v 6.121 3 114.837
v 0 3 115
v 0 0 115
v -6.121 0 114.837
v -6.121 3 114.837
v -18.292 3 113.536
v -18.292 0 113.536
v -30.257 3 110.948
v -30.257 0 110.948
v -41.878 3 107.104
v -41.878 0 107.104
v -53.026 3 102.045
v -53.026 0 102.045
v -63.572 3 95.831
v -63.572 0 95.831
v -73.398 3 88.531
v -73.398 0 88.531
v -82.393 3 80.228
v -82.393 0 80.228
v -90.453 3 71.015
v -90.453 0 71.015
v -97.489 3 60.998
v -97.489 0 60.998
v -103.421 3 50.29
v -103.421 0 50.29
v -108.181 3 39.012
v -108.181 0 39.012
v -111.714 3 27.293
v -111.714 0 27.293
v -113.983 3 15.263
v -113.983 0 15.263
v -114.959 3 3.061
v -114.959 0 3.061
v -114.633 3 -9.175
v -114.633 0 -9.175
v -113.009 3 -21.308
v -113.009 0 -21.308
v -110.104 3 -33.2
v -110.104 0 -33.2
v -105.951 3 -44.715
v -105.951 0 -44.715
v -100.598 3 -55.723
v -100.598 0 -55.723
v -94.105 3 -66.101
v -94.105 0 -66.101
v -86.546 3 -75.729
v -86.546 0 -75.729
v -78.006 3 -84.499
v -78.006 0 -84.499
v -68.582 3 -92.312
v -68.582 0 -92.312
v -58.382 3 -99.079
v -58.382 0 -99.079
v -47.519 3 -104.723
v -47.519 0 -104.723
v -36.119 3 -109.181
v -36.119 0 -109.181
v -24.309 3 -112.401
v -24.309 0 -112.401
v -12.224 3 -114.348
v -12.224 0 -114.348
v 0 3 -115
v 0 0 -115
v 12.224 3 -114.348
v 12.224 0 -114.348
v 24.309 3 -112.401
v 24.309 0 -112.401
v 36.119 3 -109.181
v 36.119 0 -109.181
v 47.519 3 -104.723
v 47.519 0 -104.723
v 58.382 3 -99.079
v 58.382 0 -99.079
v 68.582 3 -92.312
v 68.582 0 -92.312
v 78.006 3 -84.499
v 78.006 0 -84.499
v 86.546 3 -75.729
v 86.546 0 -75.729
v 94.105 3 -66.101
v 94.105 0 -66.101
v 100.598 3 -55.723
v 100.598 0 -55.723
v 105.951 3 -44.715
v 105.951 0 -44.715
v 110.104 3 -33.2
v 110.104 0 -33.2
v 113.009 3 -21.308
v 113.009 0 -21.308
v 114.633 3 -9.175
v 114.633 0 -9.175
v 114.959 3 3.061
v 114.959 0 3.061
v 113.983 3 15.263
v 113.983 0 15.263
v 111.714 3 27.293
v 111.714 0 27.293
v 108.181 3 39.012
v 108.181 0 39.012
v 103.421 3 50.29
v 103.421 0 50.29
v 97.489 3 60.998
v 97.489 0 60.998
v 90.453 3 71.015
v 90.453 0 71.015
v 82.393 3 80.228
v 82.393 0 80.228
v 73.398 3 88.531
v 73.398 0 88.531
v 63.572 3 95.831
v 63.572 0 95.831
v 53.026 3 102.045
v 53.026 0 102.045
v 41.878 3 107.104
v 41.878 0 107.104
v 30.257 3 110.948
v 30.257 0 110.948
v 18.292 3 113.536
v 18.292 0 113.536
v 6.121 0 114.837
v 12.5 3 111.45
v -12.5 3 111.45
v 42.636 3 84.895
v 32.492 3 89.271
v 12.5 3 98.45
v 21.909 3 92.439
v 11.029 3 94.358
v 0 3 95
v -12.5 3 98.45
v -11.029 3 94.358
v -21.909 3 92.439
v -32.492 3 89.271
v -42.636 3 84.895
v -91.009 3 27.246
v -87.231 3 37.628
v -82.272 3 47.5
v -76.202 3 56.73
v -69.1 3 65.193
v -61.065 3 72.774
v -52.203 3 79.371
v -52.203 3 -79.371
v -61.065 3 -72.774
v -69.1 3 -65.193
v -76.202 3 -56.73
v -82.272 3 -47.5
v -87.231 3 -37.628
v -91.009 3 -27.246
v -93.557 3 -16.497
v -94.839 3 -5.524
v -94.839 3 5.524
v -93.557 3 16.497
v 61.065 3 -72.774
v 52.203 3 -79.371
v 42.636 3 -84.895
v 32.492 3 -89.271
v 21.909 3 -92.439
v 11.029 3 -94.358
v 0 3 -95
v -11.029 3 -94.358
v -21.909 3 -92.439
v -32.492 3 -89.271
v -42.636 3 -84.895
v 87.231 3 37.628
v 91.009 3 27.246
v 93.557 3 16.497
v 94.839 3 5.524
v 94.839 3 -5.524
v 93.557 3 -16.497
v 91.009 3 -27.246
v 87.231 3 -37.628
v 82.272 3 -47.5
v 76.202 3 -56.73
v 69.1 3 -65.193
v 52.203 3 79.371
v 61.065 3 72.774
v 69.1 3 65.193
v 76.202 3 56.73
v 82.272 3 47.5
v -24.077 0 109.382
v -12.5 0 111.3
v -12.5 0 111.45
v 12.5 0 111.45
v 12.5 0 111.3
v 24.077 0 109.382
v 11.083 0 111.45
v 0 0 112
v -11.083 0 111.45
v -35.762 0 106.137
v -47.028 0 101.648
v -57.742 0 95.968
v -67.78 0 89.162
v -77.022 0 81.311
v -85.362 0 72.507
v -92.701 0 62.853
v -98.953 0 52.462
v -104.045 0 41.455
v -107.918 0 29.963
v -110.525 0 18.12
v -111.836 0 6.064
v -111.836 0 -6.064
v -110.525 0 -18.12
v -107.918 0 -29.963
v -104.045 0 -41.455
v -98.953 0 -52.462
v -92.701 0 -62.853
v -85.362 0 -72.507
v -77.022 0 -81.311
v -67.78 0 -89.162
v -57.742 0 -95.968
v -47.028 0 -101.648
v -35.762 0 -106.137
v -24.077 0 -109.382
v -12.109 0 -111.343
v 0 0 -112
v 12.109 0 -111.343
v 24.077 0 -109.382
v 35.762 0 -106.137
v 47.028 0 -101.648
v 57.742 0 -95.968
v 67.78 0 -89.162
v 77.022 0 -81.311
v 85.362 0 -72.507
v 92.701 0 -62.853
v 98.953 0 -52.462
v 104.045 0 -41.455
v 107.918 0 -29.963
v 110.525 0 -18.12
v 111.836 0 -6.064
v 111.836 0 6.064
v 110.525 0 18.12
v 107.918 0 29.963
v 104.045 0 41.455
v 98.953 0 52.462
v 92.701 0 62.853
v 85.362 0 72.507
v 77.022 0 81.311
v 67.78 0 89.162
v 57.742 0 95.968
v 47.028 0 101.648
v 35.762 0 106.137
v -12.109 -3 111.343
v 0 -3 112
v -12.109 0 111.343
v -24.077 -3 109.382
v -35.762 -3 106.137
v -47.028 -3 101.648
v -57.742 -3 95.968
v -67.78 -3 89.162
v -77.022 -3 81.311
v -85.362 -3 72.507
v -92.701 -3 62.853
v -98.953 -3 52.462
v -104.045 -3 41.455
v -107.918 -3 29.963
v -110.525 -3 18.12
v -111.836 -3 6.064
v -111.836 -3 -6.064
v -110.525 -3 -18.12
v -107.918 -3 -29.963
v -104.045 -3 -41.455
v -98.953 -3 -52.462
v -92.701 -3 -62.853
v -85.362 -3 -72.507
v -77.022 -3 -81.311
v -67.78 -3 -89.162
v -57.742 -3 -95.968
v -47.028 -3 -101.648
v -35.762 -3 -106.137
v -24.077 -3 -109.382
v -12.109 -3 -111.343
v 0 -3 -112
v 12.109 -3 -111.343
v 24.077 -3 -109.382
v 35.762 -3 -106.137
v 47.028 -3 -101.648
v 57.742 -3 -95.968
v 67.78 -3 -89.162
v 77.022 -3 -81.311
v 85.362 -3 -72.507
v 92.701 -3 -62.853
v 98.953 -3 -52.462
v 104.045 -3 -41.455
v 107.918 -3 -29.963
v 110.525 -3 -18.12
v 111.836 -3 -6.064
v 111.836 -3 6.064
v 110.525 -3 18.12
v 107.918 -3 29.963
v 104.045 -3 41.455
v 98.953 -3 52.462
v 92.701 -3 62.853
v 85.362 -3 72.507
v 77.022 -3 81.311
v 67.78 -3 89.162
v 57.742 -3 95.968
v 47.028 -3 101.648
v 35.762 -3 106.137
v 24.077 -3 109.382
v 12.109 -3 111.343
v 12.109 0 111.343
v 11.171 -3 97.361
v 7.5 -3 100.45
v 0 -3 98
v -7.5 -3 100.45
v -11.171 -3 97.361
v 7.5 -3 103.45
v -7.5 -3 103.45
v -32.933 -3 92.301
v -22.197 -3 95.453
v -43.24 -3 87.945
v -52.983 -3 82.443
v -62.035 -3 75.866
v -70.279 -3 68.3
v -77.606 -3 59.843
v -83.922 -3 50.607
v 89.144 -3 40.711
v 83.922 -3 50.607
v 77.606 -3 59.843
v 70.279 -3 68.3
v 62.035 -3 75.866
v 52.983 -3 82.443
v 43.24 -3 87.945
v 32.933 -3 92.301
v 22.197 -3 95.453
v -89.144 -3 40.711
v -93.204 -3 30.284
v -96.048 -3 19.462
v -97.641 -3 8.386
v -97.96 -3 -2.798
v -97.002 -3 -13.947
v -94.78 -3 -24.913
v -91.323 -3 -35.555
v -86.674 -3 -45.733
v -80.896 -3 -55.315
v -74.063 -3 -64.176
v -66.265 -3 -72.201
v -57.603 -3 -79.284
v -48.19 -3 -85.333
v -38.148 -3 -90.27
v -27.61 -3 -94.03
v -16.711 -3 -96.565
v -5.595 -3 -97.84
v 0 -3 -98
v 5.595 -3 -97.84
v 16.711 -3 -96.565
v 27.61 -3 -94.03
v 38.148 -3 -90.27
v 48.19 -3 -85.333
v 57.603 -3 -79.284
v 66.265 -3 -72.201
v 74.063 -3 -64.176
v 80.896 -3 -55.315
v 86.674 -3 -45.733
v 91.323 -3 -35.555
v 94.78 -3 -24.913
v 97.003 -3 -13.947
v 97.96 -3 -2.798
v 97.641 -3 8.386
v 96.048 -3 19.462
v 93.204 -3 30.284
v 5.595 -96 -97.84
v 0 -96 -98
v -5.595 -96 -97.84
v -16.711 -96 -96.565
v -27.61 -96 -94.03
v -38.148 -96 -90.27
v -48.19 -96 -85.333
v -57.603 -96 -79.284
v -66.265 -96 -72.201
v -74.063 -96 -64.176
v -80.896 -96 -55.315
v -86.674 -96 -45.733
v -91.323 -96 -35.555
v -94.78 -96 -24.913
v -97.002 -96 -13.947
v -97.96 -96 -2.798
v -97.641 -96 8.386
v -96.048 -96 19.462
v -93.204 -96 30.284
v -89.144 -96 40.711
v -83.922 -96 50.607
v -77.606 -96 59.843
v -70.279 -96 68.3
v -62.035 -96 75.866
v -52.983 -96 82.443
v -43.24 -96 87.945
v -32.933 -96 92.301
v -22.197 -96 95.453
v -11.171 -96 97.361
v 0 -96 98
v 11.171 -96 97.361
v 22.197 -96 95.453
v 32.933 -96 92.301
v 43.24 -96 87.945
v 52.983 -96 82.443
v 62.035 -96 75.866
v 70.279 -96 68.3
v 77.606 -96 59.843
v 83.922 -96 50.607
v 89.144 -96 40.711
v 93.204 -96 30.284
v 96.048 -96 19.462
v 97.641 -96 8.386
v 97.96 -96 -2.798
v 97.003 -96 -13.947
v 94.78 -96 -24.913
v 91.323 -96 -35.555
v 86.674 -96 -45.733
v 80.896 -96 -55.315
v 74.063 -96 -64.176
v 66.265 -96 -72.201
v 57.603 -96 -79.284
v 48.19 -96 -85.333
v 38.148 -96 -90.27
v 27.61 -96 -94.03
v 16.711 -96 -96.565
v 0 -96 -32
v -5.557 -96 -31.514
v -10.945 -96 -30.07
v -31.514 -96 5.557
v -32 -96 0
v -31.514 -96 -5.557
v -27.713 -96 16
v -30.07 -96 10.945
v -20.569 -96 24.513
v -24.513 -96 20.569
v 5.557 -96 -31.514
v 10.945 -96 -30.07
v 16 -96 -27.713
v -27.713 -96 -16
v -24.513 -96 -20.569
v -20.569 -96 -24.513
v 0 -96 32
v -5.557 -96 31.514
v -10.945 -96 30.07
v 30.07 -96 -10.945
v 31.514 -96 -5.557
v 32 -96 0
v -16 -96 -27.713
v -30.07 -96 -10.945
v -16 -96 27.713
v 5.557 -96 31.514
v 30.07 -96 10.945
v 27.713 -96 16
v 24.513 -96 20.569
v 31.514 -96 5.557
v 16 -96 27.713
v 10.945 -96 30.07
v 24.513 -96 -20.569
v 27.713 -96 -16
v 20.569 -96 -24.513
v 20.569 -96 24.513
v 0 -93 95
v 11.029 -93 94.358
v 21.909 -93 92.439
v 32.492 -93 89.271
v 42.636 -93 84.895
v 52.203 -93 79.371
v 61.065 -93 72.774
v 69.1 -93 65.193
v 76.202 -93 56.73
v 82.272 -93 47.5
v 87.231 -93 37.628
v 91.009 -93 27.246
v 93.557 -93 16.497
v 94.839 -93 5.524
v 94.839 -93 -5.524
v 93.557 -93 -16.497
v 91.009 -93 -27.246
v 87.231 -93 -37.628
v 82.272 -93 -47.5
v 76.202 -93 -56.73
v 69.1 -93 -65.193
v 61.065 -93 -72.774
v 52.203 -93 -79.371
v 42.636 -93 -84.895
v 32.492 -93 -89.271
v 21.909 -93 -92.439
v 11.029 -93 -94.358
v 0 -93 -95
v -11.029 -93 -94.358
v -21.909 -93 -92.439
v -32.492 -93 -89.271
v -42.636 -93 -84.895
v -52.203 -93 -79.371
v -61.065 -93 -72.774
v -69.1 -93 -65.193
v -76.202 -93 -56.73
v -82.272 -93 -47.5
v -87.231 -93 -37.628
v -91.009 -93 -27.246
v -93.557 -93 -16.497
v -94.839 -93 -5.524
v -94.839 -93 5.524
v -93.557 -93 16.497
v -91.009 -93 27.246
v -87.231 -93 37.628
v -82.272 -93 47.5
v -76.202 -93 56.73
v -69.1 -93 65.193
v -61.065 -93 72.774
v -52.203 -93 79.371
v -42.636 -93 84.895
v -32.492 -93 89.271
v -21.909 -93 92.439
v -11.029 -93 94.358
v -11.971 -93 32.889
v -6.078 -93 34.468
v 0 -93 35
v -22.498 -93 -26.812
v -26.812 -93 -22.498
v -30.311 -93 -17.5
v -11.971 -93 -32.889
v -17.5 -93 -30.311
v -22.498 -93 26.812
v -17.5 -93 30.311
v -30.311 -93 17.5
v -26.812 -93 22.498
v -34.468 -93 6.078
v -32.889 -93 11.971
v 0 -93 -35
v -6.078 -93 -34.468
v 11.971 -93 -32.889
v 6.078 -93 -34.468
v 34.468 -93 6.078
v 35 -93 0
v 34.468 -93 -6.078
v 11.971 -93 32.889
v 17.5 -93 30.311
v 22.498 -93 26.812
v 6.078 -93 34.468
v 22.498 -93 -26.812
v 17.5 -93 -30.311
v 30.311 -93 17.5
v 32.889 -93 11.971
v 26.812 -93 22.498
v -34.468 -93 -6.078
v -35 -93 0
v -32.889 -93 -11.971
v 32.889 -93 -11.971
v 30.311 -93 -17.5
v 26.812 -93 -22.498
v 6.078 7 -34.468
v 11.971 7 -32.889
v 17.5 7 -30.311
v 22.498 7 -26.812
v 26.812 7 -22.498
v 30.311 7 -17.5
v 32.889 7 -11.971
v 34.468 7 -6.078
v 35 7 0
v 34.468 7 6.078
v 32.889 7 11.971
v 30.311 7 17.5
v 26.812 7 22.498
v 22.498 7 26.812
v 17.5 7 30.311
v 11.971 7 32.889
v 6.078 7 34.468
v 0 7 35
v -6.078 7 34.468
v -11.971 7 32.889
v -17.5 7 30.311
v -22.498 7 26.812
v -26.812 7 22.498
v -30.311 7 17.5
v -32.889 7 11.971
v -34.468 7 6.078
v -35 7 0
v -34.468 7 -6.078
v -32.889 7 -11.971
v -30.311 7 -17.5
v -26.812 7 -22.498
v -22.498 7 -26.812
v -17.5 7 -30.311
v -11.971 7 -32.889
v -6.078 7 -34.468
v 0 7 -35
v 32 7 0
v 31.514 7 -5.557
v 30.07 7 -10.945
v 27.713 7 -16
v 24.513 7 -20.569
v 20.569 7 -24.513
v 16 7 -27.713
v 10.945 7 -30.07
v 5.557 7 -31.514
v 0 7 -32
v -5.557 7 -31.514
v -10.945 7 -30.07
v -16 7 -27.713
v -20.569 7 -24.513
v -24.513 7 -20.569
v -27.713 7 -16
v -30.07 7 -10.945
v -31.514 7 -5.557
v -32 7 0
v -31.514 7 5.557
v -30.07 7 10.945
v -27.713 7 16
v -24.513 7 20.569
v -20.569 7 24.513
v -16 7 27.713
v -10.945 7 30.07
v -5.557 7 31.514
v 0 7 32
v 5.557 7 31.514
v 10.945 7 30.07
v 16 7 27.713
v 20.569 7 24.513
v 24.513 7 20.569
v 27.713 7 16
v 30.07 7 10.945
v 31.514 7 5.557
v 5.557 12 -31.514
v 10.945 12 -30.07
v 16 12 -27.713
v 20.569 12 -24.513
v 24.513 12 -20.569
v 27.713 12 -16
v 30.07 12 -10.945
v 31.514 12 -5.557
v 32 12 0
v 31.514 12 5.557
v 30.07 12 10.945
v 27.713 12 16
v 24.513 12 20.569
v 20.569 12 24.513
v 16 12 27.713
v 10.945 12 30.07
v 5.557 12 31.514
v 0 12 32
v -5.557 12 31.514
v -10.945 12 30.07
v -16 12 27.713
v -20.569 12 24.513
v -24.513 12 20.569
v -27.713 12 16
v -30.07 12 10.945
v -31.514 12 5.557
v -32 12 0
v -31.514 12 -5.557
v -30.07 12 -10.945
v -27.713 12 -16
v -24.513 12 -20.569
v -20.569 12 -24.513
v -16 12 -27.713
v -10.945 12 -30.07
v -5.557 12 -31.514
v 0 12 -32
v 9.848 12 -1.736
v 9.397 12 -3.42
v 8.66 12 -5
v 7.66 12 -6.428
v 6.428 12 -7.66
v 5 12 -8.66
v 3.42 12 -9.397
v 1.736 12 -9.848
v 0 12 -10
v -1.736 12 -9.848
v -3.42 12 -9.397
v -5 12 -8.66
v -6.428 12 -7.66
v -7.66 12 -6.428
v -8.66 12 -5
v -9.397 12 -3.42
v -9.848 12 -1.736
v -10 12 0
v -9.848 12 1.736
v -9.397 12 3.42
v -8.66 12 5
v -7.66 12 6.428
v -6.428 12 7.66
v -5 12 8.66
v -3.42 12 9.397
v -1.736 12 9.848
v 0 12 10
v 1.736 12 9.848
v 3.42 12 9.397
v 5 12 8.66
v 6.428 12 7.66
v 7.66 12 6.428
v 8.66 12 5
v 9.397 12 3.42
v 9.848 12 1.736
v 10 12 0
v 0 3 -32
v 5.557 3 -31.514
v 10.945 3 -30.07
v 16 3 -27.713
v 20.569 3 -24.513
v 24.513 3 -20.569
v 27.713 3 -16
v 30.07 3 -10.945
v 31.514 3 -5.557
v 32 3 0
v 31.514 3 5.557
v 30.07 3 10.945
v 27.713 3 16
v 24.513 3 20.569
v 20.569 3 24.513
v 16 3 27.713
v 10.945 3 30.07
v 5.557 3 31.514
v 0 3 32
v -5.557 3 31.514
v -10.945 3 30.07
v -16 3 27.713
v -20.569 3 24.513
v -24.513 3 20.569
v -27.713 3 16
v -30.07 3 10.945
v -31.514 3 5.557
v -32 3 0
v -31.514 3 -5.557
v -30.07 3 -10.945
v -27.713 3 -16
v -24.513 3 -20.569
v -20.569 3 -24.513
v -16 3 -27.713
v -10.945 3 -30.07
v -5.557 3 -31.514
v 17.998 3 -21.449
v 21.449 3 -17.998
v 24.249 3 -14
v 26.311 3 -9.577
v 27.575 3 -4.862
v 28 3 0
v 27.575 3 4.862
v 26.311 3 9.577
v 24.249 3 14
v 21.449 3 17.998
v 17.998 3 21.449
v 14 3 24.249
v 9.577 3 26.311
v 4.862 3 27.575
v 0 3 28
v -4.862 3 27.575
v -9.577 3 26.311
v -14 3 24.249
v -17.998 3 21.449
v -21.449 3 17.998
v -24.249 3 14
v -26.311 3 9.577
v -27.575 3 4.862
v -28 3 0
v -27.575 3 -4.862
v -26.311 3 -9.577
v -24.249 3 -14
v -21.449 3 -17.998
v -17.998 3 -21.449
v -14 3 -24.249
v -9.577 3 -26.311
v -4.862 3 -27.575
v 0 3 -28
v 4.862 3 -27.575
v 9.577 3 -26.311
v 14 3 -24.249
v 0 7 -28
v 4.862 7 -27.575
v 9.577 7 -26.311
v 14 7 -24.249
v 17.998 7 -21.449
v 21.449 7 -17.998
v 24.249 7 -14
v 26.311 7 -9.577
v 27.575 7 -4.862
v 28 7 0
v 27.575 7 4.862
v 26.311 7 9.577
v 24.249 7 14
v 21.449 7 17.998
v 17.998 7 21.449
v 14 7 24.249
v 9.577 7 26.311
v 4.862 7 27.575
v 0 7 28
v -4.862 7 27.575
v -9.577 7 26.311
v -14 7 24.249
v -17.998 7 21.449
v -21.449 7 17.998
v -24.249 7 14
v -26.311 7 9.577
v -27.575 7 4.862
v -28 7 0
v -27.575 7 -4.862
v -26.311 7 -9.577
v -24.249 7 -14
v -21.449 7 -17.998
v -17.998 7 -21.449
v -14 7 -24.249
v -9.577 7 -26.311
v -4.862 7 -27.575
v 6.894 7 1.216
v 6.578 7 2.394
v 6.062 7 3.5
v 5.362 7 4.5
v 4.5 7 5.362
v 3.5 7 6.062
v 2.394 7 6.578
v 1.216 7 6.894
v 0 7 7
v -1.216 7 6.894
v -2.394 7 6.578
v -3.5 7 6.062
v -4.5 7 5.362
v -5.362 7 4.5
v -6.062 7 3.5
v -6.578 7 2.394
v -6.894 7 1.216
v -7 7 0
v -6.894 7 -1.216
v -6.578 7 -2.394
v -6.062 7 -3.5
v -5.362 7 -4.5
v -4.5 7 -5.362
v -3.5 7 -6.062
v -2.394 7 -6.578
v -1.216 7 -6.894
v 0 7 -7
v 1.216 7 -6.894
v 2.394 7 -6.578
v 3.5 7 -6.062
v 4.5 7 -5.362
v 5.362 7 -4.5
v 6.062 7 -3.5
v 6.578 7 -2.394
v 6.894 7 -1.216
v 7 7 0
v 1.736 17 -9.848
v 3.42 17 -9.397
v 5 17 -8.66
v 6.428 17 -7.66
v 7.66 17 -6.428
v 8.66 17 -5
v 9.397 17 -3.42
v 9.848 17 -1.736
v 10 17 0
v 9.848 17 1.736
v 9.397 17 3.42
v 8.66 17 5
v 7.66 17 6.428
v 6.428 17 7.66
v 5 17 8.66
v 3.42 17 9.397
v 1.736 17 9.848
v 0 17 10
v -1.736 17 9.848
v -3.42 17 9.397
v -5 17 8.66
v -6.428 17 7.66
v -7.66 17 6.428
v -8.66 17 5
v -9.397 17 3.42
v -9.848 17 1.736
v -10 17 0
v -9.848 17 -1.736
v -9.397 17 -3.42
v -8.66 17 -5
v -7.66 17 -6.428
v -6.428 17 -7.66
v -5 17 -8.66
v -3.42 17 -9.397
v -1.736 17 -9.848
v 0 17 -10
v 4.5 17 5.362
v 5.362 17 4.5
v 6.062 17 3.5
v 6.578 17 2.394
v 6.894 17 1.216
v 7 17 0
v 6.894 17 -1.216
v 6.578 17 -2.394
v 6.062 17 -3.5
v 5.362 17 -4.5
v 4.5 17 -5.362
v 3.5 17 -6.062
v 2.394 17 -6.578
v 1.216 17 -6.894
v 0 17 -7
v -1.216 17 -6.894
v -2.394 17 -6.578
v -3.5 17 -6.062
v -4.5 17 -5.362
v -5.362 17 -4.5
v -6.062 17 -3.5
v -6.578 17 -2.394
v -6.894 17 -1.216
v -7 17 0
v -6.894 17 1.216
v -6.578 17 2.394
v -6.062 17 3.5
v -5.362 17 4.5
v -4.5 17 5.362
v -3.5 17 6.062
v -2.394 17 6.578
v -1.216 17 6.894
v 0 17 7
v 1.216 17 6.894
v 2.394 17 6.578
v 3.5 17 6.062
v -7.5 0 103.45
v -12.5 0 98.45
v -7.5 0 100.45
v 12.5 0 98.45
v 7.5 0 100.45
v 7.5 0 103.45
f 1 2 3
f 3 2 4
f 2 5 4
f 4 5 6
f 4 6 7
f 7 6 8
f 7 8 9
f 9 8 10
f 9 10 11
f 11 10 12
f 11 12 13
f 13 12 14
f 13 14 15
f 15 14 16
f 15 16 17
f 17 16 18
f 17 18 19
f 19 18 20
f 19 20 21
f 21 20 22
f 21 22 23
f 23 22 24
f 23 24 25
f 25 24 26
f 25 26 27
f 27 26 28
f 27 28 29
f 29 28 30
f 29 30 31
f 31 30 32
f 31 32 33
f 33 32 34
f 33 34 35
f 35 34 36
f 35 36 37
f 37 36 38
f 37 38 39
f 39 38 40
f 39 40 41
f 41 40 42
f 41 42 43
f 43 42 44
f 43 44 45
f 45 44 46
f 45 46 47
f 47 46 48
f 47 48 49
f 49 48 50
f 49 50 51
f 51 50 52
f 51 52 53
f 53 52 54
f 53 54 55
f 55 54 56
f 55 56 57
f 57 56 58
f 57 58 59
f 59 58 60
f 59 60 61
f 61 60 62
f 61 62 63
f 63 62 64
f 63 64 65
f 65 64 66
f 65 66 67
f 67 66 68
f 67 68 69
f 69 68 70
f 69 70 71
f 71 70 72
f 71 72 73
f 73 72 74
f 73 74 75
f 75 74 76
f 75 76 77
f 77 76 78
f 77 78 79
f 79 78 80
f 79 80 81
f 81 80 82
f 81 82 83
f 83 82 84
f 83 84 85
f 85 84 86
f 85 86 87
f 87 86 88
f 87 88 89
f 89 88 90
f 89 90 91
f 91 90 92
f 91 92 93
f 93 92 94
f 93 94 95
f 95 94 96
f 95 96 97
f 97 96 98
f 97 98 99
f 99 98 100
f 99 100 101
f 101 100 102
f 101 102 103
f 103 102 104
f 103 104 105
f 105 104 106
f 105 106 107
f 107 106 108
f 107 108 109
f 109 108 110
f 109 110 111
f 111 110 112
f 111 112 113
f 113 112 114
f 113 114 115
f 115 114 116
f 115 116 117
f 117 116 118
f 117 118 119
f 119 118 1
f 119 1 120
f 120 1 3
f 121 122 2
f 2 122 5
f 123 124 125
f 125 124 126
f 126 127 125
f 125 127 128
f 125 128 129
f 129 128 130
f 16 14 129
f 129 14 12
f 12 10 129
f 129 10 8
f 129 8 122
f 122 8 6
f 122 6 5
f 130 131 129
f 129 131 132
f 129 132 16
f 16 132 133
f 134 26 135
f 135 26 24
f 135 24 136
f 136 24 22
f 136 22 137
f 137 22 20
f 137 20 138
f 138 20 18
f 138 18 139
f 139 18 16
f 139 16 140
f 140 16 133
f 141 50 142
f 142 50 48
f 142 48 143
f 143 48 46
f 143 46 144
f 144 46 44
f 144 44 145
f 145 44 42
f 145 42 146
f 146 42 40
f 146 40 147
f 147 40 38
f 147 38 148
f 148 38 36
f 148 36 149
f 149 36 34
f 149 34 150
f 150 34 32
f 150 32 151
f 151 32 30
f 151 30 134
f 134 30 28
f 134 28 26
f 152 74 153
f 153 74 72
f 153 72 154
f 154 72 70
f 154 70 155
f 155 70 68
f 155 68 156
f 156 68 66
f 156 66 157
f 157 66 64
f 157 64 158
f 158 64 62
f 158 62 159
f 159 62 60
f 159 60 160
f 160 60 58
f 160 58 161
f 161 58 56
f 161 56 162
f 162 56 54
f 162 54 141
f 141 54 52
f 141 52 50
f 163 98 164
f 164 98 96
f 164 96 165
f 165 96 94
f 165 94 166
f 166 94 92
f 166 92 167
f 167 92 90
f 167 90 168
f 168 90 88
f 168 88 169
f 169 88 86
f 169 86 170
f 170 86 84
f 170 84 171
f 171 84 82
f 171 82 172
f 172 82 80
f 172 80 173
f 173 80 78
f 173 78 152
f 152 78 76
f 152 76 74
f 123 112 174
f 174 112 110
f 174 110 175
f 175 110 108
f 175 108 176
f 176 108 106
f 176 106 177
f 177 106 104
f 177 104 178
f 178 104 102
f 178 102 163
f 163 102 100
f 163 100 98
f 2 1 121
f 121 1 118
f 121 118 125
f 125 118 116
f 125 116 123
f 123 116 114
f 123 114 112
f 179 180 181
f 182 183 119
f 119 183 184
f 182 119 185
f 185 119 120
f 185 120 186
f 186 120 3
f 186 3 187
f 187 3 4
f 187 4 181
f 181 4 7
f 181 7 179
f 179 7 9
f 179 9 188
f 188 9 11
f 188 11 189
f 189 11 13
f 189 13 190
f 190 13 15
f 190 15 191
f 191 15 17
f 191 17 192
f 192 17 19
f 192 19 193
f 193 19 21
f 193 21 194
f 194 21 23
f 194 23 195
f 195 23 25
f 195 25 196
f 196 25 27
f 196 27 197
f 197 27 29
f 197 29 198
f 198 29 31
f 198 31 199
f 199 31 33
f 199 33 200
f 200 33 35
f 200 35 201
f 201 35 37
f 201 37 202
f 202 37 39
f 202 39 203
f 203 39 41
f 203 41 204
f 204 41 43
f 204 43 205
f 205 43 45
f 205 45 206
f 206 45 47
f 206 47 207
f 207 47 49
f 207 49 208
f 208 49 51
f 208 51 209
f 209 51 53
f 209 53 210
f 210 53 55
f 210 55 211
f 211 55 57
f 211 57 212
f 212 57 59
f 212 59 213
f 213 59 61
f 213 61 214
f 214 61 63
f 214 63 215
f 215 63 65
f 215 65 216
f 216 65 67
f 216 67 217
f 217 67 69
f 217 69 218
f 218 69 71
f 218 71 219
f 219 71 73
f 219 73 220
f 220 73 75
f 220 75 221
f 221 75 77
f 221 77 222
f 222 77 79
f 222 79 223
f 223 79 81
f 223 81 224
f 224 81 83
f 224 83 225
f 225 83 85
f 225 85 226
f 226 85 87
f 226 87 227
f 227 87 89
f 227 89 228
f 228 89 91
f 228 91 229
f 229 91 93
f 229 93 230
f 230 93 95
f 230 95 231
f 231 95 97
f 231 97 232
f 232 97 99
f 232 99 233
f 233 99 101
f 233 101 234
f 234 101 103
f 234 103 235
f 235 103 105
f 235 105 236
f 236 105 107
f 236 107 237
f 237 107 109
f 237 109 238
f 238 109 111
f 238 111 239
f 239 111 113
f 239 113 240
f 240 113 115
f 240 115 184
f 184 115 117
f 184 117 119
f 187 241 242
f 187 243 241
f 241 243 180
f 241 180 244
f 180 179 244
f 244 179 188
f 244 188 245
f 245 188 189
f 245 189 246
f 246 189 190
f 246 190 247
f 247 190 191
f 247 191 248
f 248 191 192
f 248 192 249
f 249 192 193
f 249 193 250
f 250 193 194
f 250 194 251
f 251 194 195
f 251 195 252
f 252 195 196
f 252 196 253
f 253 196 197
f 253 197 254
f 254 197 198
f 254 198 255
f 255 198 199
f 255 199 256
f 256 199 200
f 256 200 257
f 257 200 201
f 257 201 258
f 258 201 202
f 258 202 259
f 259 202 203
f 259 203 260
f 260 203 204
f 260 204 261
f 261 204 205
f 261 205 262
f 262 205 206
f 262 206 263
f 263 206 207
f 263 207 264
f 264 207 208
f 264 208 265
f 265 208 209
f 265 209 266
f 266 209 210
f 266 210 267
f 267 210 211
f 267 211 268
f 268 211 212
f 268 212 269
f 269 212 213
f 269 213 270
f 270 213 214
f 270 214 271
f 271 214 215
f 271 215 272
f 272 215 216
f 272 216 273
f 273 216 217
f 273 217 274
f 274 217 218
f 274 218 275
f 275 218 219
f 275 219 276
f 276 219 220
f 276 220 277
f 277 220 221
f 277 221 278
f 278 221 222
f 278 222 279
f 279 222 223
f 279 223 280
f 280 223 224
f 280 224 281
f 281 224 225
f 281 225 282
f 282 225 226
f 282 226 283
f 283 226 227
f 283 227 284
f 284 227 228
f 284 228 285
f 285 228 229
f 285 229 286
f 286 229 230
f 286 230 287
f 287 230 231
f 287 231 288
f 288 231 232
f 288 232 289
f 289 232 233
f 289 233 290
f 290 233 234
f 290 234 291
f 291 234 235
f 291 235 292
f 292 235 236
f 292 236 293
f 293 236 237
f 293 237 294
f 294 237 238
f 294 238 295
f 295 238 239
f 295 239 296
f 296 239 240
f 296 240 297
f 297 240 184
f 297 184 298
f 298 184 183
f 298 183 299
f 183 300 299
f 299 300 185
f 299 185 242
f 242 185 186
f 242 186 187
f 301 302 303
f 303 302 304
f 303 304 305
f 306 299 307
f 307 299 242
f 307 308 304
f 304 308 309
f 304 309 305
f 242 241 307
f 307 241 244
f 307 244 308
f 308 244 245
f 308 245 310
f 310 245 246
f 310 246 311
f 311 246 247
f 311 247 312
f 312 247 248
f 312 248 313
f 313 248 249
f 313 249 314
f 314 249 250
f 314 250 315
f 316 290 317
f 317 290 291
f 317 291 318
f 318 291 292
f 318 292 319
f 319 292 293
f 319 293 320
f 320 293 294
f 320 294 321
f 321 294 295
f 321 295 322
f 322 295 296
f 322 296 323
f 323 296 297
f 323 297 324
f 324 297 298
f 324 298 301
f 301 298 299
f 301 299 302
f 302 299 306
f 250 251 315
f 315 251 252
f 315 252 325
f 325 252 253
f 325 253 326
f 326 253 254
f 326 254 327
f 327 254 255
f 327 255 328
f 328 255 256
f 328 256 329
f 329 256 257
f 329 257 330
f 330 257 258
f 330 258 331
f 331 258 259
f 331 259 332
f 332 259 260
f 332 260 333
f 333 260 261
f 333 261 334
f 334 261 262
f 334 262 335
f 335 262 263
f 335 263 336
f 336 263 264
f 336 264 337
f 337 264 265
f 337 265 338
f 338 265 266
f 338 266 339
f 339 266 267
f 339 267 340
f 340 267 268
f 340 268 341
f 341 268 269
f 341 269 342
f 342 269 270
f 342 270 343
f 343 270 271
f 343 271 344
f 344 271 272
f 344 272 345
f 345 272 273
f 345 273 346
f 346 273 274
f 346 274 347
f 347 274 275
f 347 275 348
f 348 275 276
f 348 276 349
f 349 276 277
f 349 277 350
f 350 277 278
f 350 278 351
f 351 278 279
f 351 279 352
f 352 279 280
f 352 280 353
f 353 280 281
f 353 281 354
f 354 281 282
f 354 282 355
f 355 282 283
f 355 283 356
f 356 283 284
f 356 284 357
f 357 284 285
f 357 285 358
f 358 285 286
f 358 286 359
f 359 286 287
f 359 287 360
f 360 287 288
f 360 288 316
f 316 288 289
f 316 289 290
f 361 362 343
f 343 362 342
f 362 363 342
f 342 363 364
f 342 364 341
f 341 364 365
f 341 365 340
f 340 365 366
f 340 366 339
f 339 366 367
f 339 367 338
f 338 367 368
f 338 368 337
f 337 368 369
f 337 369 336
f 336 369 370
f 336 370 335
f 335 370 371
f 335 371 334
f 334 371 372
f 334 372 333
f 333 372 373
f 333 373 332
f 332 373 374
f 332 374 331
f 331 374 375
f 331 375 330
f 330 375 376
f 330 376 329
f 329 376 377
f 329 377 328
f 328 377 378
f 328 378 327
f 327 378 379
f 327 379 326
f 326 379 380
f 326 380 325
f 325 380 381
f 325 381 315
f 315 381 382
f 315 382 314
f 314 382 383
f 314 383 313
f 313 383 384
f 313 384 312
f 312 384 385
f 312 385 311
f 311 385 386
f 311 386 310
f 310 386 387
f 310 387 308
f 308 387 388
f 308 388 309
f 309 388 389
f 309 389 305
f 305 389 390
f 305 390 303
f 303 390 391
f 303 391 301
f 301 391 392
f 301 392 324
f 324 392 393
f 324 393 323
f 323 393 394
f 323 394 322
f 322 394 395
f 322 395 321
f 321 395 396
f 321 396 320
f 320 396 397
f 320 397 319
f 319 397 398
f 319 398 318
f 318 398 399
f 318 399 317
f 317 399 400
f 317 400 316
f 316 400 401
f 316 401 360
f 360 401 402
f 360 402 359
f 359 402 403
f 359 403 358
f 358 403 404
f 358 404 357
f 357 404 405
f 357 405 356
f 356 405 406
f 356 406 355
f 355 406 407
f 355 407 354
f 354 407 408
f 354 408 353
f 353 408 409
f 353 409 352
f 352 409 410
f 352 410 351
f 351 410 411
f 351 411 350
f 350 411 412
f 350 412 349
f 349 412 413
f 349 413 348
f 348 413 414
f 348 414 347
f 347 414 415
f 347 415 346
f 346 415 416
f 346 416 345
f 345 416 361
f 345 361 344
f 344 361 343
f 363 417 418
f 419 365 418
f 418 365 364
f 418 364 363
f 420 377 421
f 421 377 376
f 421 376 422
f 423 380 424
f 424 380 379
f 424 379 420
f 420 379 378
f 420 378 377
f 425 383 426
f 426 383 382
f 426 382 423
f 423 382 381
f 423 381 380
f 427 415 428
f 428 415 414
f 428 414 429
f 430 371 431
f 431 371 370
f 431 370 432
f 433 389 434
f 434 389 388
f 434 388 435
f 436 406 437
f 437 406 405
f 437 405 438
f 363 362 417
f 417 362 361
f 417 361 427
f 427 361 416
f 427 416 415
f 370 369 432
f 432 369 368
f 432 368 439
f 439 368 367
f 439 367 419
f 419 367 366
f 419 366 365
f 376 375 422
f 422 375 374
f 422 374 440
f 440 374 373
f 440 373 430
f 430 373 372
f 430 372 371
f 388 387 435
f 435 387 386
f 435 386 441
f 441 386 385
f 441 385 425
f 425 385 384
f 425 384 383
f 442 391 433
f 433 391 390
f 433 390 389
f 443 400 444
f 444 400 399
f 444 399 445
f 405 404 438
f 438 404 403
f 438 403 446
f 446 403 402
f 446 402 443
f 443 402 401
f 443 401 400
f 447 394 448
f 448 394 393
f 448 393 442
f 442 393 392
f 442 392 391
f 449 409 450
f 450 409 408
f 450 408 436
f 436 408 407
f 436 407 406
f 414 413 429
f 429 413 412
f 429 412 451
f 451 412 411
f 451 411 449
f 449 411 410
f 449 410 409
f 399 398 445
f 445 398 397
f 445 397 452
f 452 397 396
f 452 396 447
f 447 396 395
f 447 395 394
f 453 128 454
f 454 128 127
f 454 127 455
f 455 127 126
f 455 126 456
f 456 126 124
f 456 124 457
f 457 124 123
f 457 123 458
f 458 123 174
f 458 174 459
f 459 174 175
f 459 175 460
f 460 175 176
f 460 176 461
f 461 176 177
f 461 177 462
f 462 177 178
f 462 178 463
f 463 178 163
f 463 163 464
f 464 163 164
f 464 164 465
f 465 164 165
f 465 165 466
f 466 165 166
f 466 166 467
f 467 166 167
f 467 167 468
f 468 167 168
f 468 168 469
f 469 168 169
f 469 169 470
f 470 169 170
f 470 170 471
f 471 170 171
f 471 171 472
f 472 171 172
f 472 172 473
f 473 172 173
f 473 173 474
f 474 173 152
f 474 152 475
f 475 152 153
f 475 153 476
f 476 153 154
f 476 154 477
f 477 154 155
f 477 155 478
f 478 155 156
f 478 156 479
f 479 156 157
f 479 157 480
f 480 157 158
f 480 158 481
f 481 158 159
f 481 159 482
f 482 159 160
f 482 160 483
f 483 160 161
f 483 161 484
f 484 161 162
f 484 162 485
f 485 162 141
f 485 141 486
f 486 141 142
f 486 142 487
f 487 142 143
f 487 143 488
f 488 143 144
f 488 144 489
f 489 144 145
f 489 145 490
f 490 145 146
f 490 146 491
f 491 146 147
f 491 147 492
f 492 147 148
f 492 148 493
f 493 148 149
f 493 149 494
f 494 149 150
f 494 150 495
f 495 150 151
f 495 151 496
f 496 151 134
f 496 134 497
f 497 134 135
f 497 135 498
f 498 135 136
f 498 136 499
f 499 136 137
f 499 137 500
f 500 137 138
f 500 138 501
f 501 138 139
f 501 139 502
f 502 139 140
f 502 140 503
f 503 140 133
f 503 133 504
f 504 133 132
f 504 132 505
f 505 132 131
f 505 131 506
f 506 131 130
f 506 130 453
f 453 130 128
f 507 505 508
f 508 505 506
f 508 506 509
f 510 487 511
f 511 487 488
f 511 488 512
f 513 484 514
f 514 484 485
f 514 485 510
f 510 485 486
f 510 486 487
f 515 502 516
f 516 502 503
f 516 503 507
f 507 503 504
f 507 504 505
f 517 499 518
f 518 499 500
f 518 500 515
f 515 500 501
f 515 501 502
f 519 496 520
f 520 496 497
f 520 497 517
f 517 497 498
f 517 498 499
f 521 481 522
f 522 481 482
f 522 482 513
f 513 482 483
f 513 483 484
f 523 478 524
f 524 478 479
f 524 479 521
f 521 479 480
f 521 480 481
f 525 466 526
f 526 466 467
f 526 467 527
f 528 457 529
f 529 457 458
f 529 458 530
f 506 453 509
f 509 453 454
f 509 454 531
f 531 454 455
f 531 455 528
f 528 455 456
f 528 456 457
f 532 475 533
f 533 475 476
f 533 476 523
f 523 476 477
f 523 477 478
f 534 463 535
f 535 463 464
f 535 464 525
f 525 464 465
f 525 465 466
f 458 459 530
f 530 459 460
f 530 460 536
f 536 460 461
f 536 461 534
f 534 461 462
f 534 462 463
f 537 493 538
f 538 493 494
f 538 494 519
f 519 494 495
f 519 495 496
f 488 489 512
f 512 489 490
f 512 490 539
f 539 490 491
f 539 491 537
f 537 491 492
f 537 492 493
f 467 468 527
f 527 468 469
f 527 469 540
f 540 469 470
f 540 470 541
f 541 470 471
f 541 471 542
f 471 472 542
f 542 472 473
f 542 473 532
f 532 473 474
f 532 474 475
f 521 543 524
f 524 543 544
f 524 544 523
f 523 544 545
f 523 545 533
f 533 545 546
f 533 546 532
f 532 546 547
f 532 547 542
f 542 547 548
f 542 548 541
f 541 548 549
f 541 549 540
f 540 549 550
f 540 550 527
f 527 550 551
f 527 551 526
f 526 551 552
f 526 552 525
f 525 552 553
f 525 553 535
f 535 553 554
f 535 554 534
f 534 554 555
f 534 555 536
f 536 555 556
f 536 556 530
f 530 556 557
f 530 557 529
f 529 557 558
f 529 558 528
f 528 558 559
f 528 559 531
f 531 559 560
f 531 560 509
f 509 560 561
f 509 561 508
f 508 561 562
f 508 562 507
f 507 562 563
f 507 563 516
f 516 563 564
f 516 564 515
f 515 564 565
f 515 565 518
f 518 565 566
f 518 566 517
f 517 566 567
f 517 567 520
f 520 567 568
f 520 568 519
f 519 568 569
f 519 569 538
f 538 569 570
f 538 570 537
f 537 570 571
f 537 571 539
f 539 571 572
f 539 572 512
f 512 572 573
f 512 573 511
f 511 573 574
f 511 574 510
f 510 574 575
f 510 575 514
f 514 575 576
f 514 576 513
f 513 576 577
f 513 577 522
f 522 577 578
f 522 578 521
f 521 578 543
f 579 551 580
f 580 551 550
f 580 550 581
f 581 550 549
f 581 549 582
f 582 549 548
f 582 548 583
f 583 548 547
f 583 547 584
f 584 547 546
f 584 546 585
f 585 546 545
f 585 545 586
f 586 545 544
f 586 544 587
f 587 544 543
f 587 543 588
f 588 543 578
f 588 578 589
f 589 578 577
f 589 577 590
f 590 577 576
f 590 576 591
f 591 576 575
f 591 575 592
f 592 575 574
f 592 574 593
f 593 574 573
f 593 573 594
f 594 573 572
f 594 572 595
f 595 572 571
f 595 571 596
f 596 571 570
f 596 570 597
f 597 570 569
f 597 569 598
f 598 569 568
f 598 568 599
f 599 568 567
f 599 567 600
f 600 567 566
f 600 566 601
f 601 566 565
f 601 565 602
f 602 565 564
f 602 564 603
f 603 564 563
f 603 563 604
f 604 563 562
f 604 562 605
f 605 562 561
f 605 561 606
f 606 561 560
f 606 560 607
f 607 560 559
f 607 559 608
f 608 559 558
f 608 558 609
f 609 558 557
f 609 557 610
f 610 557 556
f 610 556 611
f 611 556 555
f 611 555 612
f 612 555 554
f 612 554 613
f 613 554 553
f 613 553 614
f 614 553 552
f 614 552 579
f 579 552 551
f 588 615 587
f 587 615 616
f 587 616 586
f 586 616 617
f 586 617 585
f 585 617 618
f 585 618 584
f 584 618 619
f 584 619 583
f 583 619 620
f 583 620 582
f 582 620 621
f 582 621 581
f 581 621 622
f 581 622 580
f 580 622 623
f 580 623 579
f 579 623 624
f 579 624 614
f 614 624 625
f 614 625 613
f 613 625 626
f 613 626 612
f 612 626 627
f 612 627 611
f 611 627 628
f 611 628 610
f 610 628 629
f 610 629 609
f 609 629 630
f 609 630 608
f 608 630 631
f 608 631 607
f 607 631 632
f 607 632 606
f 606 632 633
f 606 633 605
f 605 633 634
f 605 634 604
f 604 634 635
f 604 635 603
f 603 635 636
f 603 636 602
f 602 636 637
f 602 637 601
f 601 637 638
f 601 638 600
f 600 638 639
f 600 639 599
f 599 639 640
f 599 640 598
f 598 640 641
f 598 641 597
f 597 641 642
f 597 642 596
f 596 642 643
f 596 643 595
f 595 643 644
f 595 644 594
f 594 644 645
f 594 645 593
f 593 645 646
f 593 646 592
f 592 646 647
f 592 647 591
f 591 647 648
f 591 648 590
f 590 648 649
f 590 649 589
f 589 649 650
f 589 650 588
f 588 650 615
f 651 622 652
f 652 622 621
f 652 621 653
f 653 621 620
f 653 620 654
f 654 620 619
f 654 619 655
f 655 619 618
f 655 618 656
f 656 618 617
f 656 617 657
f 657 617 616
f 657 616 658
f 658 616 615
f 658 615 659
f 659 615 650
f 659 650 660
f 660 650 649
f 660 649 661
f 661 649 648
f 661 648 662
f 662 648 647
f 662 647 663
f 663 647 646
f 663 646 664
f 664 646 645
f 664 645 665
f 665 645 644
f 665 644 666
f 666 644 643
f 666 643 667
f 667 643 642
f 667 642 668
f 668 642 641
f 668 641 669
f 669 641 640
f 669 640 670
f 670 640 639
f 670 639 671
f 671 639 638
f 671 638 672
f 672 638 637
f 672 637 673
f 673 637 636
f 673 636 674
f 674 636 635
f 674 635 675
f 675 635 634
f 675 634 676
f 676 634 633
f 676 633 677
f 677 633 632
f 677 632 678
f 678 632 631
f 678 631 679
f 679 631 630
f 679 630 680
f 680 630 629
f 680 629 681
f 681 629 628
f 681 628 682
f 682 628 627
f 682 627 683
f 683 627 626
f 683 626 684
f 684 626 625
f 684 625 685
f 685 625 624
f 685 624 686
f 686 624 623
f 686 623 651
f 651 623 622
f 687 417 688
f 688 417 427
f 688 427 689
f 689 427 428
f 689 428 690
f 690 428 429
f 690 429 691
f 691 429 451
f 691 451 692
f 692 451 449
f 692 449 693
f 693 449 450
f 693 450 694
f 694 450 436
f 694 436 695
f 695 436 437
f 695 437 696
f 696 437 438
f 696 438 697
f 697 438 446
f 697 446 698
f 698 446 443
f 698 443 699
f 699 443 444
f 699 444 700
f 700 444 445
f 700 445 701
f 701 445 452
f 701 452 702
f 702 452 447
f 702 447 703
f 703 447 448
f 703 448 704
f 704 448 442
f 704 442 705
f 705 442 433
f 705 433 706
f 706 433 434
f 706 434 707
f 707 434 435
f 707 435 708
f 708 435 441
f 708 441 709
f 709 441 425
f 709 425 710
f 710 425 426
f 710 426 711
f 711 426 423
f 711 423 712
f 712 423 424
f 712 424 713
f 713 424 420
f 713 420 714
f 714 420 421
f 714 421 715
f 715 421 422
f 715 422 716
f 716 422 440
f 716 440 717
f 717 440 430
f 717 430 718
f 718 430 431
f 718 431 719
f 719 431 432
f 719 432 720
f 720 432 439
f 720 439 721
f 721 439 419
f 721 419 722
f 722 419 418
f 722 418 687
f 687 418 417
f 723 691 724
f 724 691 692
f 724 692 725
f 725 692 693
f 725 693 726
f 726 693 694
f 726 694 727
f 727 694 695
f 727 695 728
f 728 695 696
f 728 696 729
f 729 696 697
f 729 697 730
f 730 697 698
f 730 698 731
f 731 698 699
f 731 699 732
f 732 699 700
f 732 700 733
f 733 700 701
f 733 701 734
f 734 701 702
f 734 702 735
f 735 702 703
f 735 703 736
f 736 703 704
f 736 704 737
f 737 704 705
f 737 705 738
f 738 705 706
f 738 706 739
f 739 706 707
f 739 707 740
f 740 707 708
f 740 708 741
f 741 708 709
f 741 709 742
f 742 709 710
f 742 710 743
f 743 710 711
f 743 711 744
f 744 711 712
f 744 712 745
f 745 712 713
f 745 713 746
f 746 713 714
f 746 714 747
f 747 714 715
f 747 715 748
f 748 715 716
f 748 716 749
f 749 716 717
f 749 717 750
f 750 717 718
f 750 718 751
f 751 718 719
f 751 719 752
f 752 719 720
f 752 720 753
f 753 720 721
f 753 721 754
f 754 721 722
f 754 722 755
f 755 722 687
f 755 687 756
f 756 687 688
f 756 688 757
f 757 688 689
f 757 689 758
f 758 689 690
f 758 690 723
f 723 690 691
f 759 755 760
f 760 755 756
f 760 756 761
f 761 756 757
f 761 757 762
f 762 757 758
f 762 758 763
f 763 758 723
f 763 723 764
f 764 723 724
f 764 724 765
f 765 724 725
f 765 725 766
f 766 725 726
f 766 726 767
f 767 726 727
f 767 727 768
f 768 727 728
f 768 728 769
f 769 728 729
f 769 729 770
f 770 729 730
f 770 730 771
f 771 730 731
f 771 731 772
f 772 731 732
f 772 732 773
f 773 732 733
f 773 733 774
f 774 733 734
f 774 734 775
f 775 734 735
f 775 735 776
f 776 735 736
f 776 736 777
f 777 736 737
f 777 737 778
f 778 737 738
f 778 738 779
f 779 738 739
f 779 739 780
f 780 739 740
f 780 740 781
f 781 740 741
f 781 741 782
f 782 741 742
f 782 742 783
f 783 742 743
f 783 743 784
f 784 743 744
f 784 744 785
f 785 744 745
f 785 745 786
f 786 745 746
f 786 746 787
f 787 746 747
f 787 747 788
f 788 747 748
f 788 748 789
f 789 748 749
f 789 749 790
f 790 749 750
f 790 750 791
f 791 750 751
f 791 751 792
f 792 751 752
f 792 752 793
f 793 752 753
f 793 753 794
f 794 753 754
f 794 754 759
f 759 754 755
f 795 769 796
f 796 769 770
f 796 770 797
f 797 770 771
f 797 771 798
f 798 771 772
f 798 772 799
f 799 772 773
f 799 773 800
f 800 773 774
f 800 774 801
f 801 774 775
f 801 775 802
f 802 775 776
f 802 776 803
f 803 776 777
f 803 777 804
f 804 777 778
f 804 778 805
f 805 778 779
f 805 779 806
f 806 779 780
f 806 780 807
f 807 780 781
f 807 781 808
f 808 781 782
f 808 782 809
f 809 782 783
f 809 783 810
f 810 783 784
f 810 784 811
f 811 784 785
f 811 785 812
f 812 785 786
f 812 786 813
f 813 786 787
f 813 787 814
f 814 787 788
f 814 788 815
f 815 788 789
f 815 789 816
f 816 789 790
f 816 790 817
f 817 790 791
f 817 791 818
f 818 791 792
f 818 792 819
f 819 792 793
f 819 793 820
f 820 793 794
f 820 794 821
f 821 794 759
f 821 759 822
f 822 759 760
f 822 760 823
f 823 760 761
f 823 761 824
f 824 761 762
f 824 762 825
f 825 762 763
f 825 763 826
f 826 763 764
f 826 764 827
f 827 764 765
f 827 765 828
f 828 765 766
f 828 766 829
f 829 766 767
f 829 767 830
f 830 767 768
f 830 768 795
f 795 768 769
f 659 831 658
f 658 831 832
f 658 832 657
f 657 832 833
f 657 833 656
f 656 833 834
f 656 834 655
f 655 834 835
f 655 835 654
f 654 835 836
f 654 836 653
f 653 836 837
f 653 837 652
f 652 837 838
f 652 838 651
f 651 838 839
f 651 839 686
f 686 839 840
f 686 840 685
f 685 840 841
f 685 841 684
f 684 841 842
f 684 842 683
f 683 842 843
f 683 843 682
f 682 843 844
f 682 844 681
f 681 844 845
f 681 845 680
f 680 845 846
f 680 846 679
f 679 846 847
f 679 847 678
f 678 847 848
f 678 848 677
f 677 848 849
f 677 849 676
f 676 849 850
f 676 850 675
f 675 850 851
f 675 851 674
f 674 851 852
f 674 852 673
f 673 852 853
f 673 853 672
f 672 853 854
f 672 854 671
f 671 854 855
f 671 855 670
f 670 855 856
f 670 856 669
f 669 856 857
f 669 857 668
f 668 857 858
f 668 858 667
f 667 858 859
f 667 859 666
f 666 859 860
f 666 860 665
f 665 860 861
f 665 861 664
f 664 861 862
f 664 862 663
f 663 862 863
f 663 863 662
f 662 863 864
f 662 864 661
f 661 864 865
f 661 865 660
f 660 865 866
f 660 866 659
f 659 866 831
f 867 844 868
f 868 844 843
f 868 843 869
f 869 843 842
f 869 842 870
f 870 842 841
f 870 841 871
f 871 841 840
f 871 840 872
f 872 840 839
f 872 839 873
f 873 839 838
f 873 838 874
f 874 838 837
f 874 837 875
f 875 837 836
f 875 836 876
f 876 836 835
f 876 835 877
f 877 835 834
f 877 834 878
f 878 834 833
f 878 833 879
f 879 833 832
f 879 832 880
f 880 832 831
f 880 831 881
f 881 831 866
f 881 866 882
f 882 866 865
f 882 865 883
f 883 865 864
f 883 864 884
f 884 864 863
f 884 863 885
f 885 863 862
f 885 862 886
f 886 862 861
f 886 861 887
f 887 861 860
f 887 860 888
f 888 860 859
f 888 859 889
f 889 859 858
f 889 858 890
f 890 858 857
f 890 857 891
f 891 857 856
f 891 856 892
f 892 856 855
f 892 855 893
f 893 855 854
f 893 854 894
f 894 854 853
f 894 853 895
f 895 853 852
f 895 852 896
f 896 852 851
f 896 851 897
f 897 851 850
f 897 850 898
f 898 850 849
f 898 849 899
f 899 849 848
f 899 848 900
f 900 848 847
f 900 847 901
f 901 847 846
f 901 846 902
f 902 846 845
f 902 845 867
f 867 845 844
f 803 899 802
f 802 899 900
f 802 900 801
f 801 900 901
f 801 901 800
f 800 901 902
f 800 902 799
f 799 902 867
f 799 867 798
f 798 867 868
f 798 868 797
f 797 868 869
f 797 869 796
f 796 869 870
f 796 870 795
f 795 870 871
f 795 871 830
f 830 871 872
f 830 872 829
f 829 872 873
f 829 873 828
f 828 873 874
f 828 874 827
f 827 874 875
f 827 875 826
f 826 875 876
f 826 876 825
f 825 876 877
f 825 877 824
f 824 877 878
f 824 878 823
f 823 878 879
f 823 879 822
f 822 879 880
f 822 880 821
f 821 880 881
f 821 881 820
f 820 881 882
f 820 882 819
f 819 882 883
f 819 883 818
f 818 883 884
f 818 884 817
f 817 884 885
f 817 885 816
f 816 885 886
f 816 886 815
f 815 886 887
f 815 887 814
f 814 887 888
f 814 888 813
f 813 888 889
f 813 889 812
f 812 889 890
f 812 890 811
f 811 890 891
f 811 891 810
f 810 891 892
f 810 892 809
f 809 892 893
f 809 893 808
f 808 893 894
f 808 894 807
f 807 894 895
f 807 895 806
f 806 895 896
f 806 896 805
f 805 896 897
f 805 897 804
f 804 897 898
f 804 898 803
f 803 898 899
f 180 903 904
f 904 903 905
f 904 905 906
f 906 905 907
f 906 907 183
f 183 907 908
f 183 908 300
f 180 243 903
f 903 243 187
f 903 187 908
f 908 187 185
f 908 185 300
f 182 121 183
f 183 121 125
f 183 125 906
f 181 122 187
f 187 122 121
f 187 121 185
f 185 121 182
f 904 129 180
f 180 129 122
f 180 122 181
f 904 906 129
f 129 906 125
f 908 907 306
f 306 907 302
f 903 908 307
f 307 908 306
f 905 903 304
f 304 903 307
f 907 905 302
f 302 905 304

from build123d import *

# Parameters (mm, degrees)
SKETCH2_R           = 115
BOSS_EXTRUDE1_DEPTH = 3
SKETCH3_R           = 112
BOSS_EXTRUDE2_DEPTH = 3
SKETCH4_R           = 98
BOSS_EXTRUDE3_DEPTH = 93
SKETCH5_R           = 95
CUT_EXTRUDE1_DEPTH  = 96
SKETCH6_R           = 35
BOSS_EXTRUDE4_DEPTH = 100
SKETCH7_R           = 32
BOSS_EXTRUDE5_DEPTH = 5
SKETCH8_R           = 32
CUT_EXTRUDE2_DEPTH  = 99
SKETCH9_R           = 28
CUT_EXTRUDE3_DEPTH  = 4
SKETCH10_R          = 10
BOSS_EXTRUDE8_DEPTH = 5
SKETCH11_R          = 7
CUT_EXTRUDE4_DEPTH  = 35
SKETCH13_W          = 25
SKETCH13_H          = 13
CUT_EXTRUDE5_DEPTH  = 10
SKETCH14_W          = 15
SKETCH14_H          = 3
CUT_EXTRUDE7_DEPTH  = 10


with BuildPart() as part:
    # Sketch2 → Boss-Extrude1 (new body)
    with BuildSketch(Plane(origin=(0, 0, 0), x_dir=(1, 0, 0), z_dir=(0, 1, 0))):
        with Locations(Location((0, 0, 0), (0, 0, 270))):
            Circle(SKETCH2_R)
    extrude(amount=BOSS_EXTRUDE1_DEPTH)

    # Sketch3 → Boss-Extrude2 (add)
    with BuildSketch(Plane(origin=(0, 0, 0), x_dir=(-1, 0, 0), z_dir=(0, -1, 0))):
        with Locations(Location((0, 0, 0), (0, 0, 90))):
            Circle(SKETCH3_R)
    extrude(amount=BOSS_EXTRUDE2_DEPTH)

    # Sketch4 → Boss-Extrude3 (add)
    with BuildSketch(Plane.XZ.offset(3)):
        with Locations(Location((0, 0, 0), (0, 0, 270))):
            Circle(SKETCH4_R)
    extrude(amount=BOSS_EXTRUDE3_DEPTH)

    # Sketch5 → Cut-Extrude1 (cut)
    with BuildSketch(Plane(origin=(0, 3, 0), x_dir=(1, 0, 0), z_dir=(0, 1, 0))):
        with Locations(Location((0, 0, 0), (0, 0, 270))):
            Circle(SKETCH5_R)
    extrude(amount=-CUT_EXTRUDE1_DEPTH, mode=Mode.SUBTRACT)

    # Sketch6 → Boss-Extrude4 (add)
    with BuildSketch(Plane(origin=(0, -93, 0), x_dir=(1, 0, 0), z_dir=(0, 1, 0))):
        with Locations(Location((0, 0, 0), (0, 0, 270))):
            Circle(SKETCH6_R)
    extrude(amount=BOSS_EXTRUDE4_DEPTH)

    # Sketch7 → Boss-Extrude5 (add)
    with BuildSketch(Plane(origin=(0, 7, 0), x_dir=(1, 0, 0), z_dir=(0, 1, 0))):
        with Locations(Location((0, 0, 0), (0, 0, 270))):
            Circle(SKETCH7_R)
    extrude(amount=BOSS_EXTRUDE5_DEPTH)

    # Sketch8 → Cut-Extrude2 (cut)
    with BuildSketch(Plane.XZ.offset(96)):
        with Locations(Location((0, 0, 0), (0, 0, 90))):
            Circle(SKETCH8_R)
    extrude(amount=-CUT_EXTRUDE2_DEPTH, mode=Mode.SUBTRACT)

    # Sketch9 → Cut-Extrude3 (cut)
    with BuildSketch(Plane.XZ.offset(-3)):
        with Locations(Location((0, 0, 0), (0, 0, 270))):
            Circle(SKETCH9_R)
    extrude(amount=-CUT_EXTRUDE3_DEPTH, mode=Mode.SUBTRACT)

    # Sketch10 → Boss-Extrude8 (add)
    with BuildSketch(Plane(origin=(0, 12, 0), x_dir=(1, 0, 0), z_dir=(0, 1, 0))):
        with Locations(Location((0, 0, 0), (0, 0, 270))):
            Circle(SKETCH10_R)
    extrude(amount=BOSS_EXTRUDE8_DEPTH)

    # Sketch11 → Cut-Extrude4 (cut)
    with BuildSketch(Plane(origin=(0, 17, 0), x_dir=(1, 0, 0), z_dir=(0, 1, 0))):
        with Locations(Location((0, 0, 0), (0, 0, 270))):
            Circle(SKETCH11_R)
    extrude(amount=-CUT_EXTRUDE4_DEPTH, mode=Mode.SUBTRACT)

    # Sketch13 → Cut-Extrude5 (cut)
    with BuildSketch(Plane(origin=(0, 10, 0), x_dir=(1, 0, 0), z_dir=(0, 1, 0))):
        with Locations((0, -104.95033264)):
            Rectangle(SKETCH13_W, SKETCH13_H)
    extrude(amount=-CUT_EXTRUDE5_DEPTH, mode=Mode.SUBTRACT)

    # Sketch14 → Cut-Extrude7 (cut)
    with BuildSketch(Plane(origin=(0, 0, 0), x_dir=(1, 0, 0), z_dir=(0, 1, 0))):
        with Locations((0, -101.95033264)):
            Rectangle(SKETCH14_W, SKETCH14_H)
    extrude(amount=-CUT_EXTRUDE7_DEPTH, mode=Mode.SUBTRACT)


solid = part.part
